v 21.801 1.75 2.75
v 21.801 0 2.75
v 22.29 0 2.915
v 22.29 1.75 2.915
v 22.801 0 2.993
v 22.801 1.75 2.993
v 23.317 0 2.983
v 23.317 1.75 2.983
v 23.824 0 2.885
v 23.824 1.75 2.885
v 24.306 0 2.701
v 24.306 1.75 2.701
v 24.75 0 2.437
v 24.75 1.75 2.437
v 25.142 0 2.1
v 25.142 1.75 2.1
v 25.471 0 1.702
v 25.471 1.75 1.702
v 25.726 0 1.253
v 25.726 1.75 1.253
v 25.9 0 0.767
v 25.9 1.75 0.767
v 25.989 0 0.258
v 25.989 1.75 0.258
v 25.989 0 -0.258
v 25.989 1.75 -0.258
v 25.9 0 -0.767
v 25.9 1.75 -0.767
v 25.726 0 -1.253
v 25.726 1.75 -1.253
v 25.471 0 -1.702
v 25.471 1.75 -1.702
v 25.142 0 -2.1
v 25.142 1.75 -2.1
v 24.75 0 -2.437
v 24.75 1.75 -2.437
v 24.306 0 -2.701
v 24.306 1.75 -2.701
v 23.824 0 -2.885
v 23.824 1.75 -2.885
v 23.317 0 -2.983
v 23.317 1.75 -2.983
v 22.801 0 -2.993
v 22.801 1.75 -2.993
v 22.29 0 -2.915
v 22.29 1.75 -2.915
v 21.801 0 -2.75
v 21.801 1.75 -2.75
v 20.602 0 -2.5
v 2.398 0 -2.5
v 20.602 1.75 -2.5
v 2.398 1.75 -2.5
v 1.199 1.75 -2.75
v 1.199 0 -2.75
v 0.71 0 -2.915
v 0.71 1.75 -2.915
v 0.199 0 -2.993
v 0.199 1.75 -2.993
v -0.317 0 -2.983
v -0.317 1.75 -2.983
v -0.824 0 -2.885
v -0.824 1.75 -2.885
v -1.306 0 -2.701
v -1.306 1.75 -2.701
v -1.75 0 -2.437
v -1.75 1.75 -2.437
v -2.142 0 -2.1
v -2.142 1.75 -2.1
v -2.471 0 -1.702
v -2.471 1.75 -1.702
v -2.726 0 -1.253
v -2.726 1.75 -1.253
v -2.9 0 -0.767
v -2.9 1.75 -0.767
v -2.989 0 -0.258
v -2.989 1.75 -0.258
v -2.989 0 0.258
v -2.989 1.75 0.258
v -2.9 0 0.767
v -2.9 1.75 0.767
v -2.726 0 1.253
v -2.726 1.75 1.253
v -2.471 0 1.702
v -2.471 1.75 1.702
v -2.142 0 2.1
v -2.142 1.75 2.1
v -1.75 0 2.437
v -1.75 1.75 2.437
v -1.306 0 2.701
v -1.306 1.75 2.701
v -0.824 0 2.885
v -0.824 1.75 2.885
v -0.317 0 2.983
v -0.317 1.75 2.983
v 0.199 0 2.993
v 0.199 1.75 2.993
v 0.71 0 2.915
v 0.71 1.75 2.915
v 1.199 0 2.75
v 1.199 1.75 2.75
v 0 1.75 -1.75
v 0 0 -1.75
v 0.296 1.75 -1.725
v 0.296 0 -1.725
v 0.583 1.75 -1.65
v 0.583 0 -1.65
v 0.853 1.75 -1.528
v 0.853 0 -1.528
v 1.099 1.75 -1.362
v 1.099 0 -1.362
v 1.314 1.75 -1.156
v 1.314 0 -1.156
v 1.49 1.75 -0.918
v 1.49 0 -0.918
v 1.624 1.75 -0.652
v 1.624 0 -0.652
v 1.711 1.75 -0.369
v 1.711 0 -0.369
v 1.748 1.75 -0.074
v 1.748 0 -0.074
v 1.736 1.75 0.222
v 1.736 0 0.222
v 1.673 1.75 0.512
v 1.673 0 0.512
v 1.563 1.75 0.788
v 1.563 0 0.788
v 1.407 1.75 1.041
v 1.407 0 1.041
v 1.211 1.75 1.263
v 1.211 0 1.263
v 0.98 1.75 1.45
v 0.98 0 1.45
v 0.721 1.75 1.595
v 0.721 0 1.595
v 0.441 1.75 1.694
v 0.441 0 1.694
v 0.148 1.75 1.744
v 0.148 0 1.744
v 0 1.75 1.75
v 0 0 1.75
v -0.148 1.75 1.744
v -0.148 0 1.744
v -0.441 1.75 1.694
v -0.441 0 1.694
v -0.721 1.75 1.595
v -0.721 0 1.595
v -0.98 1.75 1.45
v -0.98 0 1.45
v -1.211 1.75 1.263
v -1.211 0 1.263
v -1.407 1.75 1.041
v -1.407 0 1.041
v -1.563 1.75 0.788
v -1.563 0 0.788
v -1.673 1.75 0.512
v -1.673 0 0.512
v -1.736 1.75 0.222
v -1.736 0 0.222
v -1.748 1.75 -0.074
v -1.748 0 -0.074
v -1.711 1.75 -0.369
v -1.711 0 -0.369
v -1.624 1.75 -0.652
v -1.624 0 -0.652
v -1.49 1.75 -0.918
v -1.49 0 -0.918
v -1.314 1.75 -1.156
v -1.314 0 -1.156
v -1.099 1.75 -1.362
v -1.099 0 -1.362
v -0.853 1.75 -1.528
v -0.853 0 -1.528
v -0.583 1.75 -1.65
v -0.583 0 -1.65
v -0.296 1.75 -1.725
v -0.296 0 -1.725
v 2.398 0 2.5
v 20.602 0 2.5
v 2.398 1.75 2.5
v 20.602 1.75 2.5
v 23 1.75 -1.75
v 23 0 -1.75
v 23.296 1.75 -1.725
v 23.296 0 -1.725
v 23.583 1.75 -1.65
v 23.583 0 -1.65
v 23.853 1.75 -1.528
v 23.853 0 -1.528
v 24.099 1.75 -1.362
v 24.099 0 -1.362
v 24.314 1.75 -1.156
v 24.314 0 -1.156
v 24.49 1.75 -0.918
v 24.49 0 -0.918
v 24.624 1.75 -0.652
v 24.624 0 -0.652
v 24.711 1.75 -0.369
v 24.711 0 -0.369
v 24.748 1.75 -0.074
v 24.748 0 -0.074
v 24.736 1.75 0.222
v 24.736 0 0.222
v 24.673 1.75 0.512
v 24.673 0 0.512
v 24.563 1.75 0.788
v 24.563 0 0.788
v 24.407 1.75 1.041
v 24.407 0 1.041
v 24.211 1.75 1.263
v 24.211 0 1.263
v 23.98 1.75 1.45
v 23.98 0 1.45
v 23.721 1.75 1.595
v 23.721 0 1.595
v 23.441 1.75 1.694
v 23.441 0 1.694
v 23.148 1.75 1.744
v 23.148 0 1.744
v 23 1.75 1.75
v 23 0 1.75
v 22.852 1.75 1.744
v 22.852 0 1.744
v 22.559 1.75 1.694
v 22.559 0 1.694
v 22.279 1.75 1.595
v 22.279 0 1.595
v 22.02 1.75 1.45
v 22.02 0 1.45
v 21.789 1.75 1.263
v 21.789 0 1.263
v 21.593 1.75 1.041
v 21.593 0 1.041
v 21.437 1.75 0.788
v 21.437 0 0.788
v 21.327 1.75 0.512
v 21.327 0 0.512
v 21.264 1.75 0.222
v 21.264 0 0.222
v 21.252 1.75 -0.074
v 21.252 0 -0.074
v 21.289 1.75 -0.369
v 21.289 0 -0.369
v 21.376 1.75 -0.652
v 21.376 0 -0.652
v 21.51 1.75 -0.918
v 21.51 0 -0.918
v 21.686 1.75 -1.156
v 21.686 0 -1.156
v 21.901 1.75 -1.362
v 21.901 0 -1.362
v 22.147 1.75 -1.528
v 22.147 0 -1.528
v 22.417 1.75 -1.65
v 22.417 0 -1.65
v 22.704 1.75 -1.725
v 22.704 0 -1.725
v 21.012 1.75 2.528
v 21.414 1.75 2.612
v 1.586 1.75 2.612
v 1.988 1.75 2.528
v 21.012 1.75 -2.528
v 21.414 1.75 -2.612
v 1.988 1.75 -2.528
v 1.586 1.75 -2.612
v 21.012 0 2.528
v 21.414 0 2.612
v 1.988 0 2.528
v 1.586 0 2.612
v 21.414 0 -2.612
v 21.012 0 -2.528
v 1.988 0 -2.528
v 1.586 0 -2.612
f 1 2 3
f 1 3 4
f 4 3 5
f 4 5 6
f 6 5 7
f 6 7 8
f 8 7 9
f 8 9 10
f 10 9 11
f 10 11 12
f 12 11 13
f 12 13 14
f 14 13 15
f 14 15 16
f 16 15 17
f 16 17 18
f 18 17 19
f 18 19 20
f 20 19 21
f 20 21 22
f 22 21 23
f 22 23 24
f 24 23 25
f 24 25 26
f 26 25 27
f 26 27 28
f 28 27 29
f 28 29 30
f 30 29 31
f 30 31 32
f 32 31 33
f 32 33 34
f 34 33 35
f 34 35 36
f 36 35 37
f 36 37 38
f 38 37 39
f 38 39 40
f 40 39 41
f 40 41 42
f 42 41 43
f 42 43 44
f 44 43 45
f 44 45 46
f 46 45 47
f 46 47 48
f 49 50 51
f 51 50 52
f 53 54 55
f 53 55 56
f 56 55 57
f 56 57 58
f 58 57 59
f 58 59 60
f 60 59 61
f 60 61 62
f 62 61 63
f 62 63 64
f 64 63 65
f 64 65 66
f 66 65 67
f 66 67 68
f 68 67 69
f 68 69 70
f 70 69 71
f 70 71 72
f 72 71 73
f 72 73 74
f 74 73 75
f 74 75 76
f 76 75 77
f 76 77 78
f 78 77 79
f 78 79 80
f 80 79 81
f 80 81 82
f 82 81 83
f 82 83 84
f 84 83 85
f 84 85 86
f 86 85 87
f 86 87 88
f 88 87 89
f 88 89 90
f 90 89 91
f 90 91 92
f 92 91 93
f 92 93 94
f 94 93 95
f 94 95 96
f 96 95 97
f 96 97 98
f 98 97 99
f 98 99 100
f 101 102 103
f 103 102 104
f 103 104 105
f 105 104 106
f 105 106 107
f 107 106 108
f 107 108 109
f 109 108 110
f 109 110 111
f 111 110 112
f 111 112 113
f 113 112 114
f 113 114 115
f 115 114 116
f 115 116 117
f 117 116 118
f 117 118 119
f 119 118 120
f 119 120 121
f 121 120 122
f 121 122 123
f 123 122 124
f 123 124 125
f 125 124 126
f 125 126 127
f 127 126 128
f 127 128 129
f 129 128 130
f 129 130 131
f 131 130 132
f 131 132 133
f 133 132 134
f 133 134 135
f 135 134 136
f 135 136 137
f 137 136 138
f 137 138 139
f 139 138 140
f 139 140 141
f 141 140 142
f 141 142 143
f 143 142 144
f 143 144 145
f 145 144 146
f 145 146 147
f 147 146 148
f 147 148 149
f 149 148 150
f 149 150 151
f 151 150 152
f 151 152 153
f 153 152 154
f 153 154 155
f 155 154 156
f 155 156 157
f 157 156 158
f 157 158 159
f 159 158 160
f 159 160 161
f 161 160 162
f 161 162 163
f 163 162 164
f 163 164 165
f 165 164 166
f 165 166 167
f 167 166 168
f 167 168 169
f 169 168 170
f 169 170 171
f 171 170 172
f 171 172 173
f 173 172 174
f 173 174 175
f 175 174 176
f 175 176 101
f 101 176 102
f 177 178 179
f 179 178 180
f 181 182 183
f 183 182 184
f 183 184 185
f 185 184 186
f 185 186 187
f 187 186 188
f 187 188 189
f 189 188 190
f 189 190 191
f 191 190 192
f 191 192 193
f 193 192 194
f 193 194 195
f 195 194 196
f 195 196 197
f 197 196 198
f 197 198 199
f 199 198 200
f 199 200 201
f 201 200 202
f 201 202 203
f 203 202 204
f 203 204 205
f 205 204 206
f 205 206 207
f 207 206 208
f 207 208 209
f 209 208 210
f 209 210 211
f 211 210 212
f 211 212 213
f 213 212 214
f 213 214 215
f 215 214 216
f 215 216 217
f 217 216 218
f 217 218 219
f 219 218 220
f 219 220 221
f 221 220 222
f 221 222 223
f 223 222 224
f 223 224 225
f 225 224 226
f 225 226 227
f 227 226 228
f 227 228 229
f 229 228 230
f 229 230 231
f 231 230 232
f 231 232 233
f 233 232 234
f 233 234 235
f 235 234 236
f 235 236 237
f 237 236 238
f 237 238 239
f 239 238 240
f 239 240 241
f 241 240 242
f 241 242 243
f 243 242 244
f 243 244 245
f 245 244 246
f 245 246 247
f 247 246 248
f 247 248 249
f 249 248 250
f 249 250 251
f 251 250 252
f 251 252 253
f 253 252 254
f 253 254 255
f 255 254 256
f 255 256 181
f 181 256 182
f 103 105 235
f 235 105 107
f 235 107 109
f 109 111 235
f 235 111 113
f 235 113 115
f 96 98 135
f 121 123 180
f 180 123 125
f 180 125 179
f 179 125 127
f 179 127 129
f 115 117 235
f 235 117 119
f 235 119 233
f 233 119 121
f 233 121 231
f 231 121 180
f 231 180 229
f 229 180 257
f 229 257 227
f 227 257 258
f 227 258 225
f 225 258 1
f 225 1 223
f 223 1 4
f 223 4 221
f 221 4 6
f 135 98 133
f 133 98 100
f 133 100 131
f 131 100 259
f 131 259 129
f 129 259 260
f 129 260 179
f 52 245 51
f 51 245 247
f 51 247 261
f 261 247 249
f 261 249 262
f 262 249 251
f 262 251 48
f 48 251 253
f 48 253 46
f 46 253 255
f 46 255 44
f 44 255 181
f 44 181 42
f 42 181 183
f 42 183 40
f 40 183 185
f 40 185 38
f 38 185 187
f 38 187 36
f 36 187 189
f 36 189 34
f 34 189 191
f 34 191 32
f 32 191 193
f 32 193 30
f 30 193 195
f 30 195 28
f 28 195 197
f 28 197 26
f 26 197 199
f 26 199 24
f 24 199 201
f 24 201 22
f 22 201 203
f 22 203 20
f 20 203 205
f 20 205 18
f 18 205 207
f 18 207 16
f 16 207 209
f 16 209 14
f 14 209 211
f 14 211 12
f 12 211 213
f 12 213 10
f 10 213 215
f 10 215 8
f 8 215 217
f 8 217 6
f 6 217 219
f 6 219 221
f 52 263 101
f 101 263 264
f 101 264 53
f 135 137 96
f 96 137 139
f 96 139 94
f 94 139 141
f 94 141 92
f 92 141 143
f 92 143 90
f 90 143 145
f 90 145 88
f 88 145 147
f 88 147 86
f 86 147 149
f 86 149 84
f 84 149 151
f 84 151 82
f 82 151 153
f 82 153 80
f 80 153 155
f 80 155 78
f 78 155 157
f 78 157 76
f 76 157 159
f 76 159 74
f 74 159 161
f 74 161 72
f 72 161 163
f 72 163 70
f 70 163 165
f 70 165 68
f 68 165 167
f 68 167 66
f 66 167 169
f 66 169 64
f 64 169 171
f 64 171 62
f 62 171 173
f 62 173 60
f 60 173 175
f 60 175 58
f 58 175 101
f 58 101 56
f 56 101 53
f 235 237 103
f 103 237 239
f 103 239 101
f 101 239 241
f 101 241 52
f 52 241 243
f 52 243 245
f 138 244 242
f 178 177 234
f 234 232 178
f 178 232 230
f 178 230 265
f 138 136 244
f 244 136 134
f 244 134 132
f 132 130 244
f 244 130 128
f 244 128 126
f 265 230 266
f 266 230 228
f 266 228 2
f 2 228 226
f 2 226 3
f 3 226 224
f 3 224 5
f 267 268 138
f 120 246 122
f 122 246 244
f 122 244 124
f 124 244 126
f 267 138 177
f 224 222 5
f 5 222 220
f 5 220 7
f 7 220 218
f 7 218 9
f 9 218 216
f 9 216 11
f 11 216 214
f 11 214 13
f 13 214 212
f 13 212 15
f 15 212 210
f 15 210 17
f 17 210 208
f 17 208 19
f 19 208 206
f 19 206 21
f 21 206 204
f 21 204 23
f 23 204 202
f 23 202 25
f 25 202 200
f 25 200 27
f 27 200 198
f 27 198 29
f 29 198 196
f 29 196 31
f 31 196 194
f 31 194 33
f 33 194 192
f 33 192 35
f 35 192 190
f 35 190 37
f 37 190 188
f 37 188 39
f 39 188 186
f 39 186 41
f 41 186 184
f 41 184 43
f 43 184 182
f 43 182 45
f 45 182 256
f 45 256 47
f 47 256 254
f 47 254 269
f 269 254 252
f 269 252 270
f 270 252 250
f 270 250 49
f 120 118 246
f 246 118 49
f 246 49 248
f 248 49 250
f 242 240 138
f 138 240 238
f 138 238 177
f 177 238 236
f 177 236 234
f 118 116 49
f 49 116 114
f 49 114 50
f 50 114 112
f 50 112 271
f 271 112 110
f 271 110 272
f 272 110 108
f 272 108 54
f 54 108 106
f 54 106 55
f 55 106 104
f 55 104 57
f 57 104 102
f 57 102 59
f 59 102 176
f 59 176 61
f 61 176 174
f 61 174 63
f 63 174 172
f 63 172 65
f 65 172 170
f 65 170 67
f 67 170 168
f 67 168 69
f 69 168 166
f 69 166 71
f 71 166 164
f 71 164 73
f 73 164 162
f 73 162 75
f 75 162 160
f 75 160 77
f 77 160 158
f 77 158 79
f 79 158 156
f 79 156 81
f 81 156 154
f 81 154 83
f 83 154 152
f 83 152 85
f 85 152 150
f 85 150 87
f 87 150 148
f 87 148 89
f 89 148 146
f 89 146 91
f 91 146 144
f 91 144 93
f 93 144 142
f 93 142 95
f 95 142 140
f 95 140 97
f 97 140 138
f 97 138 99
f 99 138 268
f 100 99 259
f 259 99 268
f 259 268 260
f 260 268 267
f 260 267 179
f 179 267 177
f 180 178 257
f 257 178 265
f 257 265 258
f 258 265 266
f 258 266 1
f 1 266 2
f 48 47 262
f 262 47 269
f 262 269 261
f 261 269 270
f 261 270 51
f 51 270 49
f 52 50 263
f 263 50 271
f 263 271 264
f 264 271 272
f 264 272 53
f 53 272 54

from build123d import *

# Parameters (mm, degrees)
SKETCH1_R           = 1.75
BOSS_EXTRUDE1_DEPTH = 1.75
FILLET1_R           = 3


with BuildPart() as part:
    # Sketch1 → Boss-Extrude1 (new body)
    with BuildSketch(Plane(origin=(0, 0, 0), x_dir=(1, 0, 0), z_dir=(0, 1, 0))):
        with BuildLine():
            ThreePointArc((1.658312395, 2.5), (-3, 0), (1.658312395, -2.5))
            Line((1.658312395, -2.5), (21.341687605, -2.5))
            ThreePointArc((21.341687605, -2.5), (26, 0), (21.341687605, 2.5))
            Line((21.341687605, 2.5), (1.658312395, 2.5))
        make_face()
        with Locations(Location((0, 0, 0), (0, 0, 270))):
            Circle(SKETCH1_R, mode=Mode.SUBTRACT)
        with Locations(Location((23, 0, 0), (0, 0, 270))):
            Circle(SKETCH1_R, mode=Mode.SUBTRACT)
    extrude(amount=BOSS_EXTRUDE1_DEPTH)

    # Fillet1
    fillet1_edges = [part.edges().sort_by_distance(p)[0] for p in [
        (21.341687605, 0.875, 2.5),
        (1.658312395, 0.875, 2.5),
        (1.658312395, 0.875, -2.5),
        (21.341687605, 0.875, -2.5),
    ]]
    fillet(fillet1_edges, radius=FILLET1_R)


solid = part.part
